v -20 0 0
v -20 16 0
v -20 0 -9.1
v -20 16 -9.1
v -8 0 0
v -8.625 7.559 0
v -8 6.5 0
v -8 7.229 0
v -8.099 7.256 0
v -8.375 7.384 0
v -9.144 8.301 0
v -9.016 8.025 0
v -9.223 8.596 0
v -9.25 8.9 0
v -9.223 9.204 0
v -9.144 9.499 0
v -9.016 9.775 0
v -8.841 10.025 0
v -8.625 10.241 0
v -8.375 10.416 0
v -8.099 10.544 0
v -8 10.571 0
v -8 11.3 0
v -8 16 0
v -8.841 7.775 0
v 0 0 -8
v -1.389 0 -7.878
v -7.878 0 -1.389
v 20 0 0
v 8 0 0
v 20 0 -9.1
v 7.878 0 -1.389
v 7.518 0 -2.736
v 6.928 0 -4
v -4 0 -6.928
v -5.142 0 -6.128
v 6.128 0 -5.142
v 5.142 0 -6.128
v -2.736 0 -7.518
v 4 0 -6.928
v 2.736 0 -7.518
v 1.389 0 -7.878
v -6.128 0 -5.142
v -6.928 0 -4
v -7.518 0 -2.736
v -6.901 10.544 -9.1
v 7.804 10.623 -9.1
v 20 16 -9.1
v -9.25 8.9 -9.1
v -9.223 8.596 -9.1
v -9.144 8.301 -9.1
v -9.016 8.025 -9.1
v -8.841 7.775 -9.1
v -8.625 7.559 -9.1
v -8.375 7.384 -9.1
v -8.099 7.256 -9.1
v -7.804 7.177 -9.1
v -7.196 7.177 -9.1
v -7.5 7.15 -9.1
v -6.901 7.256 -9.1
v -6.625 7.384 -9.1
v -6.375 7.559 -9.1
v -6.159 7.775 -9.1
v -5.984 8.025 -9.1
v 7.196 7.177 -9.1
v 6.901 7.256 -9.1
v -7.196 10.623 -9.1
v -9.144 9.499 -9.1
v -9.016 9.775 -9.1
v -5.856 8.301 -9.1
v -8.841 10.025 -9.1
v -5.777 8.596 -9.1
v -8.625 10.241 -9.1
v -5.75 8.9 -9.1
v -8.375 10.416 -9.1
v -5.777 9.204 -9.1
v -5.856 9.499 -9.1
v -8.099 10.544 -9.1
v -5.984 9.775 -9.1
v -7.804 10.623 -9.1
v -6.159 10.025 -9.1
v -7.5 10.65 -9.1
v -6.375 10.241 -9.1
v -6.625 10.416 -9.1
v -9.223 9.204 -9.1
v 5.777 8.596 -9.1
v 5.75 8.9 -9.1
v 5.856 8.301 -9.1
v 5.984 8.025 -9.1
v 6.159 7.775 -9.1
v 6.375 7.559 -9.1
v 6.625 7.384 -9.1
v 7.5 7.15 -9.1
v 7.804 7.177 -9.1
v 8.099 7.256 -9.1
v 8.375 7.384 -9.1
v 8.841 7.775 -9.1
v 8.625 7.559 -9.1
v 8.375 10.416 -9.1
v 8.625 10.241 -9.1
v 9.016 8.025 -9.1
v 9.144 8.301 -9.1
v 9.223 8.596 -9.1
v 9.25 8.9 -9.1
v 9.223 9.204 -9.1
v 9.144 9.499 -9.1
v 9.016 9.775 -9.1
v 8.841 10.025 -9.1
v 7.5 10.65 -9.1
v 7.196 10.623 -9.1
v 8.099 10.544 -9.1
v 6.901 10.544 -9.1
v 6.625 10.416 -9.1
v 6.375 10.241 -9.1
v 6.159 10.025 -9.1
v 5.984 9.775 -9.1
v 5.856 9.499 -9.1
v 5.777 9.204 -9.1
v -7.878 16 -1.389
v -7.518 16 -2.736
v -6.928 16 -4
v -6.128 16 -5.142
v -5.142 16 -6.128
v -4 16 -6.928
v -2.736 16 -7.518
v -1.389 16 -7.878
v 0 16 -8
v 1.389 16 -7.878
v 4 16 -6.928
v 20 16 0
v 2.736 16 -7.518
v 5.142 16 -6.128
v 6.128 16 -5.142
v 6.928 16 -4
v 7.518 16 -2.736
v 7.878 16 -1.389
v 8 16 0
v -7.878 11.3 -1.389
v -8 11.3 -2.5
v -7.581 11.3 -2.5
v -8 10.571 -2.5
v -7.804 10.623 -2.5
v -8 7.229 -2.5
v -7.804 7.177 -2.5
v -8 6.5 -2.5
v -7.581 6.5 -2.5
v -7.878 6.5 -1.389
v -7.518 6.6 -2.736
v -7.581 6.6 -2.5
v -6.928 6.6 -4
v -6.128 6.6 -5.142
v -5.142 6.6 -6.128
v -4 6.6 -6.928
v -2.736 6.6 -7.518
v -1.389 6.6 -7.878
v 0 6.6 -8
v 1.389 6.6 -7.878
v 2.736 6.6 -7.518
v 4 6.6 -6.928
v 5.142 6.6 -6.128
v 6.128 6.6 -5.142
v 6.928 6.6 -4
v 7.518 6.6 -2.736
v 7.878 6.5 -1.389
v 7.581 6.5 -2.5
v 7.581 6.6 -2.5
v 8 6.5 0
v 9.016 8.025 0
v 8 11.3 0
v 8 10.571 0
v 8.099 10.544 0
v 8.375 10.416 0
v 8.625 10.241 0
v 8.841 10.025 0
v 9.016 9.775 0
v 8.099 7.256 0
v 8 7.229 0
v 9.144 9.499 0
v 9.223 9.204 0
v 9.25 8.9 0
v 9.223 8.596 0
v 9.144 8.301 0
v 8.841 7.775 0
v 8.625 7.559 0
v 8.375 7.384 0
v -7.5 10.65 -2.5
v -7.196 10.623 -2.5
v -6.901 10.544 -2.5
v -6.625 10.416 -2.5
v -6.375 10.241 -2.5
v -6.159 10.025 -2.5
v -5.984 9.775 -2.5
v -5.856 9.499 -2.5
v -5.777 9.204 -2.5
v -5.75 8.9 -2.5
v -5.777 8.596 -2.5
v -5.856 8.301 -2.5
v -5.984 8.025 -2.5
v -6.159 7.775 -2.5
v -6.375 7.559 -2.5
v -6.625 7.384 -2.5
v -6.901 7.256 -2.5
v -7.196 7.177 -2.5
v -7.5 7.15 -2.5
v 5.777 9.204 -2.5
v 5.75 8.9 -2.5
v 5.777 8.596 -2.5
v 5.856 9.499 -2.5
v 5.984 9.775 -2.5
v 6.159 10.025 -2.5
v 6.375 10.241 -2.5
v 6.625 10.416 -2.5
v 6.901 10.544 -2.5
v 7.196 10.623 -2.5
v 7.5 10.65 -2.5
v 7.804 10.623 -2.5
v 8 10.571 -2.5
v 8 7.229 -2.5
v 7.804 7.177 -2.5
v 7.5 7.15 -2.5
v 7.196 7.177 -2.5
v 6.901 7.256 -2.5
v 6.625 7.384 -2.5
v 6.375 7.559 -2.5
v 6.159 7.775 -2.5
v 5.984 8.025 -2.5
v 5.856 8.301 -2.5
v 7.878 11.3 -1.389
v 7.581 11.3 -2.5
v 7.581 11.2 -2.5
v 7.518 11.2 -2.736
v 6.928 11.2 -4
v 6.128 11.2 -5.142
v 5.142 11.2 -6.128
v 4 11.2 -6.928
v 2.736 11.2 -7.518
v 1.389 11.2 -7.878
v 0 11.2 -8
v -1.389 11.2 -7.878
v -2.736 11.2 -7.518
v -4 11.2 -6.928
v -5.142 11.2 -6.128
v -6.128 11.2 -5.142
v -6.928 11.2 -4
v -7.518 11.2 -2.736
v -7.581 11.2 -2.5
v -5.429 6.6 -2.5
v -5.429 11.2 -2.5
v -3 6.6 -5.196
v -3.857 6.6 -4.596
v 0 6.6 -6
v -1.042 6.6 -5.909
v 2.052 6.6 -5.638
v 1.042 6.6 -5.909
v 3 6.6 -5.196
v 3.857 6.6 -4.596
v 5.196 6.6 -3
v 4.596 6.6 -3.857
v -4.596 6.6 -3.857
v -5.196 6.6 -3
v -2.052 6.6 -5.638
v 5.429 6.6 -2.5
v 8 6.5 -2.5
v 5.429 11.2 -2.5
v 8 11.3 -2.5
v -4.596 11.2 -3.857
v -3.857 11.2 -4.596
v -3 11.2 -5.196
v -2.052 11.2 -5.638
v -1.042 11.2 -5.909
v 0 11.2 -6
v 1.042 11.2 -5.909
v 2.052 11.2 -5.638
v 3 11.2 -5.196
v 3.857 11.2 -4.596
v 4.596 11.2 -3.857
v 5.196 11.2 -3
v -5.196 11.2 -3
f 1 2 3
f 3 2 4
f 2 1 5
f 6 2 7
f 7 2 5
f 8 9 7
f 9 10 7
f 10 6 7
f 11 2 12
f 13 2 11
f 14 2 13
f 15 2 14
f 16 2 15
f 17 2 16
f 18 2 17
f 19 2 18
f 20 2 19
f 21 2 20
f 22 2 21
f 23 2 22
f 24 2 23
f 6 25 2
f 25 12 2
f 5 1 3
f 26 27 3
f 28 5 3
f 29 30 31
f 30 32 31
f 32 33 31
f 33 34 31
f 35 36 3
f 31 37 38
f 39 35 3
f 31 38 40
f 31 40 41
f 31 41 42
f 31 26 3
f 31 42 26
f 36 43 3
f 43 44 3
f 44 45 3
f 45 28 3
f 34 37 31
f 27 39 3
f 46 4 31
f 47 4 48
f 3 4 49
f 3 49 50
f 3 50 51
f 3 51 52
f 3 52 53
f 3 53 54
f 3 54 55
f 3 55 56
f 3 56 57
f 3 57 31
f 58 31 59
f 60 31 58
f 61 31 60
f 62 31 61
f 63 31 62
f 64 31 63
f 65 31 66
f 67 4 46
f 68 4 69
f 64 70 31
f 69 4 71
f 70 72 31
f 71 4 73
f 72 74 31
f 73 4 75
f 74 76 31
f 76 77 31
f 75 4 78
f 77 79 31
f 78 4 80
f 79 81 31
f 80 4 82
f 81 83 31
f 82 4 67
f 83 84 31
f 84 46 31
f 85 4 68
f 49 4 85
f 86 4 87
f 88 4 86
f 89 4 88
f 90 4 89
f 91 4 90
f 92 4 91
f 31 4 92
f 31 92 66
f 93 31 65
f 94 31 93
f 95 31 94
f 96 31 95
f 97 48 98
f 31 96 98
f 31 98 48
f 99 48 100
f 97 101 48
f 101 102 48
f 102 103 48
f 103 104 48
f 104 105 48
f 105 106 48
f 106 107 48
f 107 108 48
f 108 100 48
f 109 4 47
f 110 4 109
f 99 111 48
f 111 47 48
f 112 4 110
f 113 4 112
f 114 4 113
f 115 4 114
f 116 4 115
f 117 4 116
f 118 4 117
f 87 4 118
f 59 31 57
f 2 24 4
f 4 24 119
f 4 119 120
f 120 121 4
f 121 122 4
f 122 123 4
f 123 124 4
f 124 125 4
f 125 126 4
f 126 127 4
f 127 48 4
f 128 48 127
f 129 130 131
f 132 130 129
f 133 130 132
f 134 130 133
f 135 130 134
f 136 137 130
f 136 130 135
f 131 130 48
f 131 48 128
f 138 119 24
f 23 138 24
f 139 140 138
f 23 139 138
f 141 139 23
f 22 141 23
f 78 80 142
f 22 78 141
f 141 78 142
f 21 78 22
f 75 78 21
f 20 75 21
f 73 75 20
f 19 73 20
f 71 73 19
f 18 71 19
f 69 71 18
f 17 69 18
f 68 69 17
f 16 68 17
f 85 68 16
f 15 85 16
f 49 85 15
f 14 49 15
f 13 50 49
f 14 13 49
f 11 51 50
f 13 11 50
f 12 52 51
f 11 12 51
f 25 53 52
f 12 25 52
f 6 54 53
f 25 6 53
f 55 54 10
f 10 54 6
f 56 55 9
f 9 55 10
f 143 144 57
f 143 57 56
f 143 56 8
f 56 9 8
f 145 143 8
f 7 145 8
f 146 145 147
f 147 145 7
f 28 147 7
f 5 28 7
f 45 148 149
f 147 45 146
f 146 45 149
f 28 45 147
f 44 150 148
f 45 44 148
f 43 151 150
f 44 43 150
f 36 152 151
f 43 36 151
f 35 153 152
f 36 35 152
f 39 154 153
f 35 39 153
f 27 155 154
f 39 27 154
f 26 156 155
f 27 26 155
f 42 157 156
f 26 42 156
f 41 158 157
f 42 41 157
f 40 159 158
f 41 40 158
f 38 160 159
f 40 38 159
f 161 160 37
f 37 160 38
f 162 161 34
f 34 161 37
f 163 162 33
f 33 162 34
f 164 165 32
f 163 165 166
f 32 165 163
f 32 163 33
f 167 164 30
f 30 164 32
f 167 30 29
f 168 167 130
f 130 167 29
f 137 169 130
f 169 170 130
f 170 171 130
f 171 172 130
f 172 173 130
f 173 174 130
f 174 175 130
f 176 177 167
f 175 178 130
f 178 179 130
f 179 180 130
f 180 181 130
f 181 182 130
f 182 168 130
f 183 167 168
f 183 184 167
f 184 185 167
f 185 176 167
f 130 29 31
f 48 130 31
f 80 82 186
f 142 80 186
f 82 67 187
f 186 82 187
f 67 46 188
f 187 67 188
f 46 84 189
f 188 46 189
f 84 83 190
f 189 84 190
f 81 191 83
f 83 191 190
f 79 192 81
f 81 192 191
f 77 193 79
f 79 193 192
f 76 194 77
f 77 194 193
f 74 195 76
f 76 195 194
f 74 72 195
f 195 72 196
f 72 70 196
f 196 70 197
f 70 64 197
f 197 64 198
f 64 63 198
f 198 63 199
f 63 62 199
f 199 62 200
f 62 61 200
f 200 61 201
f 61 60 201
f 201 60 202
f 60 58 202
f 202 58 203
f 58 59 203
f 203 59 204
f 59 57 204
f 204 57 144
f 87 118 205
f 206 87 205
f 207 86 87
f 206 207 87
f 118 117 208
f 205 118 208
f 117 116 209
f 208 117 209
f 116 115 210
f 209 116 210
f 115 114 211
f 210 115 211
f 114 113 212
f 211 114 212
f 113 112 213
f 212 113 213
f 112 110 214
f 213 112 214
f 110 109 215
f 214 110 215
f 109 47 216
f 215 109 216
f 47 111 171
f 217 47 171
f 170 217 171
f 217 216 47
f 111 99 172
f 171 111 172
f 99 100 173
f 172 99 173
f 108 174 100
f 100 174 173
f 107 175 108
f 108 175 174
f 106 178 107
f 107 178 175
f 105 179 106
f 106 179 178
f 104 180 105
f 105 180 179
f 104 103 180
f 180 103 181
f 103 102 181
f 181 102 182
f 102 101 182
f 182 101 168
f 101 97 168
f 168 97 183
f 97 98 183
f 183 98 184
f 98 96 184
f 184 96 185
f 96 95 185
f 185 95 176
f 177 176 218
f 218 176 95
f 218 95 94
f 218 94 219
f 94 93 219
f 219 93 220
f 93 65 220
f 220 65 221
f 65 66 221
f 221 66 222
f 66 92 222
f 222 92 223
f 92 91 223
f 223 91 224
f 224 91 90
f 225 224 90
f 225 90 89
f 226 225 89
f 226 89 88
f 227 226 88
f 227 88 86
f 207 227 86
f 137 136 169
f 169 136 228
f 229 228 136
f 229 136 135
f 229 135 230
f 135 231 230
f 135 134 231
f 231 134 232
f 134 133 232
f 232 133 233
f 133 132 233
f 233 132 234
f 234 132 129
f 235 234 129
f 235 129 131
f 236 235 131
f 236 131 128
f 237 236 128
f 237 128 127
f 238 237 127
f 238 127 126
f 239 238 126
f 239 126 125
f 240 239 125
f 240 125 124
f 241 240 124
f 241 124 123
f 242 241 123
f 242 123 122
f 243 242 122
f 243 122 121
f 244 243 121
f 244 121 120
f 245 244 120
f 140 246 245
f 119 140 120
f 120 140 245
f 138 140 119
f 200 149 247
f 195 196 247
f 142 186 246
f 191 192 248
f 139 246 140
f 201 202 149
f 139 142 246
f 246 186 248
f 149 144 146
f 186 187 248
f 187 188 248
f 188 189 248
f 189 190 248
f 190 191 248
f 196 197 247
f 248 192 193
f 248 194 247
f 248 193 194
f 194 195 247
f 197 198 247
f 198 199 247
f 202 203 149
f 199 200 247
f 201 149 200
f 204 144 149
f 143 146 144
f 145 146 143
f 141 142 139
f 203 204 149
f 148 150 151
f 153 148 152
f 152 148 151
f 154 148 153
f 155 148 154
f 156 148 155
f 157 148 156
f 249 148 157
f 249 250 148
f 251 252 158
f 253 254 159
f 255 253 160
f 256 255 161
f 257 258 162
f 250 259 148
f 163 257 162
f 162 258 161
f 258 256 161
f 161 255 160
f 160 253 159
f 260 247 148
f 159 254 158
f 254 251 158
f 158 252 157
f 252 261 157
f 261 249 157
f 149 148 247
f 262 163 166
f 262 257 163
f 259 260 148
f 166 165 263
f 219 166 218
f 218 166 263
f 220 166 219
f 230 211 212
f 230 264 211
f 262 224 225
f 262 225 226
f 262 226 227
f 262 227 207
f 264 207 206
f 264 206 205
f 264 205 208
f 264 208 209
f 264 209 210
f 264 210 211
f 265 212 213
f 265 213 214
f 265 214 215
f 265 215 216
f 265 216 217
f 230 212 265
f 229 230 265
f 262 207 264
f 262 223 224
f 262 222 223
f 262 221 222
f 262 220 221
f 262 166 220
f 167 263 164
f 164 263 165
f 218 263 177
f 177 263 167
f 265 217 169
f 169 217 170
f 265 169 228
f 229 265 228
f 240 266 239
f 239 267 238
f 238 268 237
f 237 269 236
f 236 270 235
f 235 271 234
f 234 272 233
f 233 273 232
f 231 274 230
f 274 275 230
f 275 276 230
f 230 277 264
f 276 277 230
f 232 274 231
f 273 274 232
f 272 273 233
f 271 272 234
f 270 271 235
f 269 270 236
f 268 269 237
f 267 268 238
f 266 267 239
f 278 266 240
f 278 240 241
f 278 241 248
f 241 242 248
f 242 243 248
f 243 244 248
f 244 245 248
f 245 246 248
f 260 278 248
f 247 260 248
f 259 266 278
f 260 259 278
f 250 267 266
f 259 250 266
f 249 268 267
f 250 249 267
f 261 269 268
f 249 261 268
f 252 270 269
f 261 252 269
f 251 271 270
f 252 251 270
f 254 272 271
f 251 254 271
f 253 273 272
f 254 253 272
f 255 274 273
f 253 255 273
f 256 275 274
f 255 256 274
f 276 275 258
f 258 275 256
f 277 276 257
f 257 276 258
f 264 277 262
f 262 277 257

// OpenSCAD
$fn=36;

//J-head hotend mount for Ormerod. By John Stäck, Copyright (c) 2014.
//Licensed under Creative Commons Attribution Share-Alike (CC BY-SA)

//Dimensions of J-head nozzle holder V.5
diameter = 16; //Diameter of nozzle holder
groove_diameter=12;
groove_width=4.6;
groove_offset=4.8;


block_width=40;
block_height=16;
block_thickness=9.1;
hole_distance=15; //Distance between holes
//hole_offset=7; //Distance from top of block
hole_offset=groove_offset+groove_width/2; //7.1, just to get screw holes centered in groove

hole_diameter=3.5;

rotate([-90,0,0]) //Rotate for printing
difference()
{
	translate([-block_width/2,0,0]) cube([block_width, block_thickness, block_height]);

	//Screw holes
	for(dir=[-1,1]) translate([dir*hole_distance/2, -1, block_height-hole_offset]) rotate([-90,0,0]) cylinder(d=hole_diameter,h=block_thickness+2);

	//"inner cylinder" matching the groove
	translate([0,0,-1]) cylinder(d=groove_diameter, h=block_height+2);

	//Top and bottom parts of thick cylinder
	translate([0,0,block_height-groove_offset]) cylinder(d=diameter, h=groove_offset+1);
	translate([0,0,-1]) cylinder(d=diameter, h=block_height-groove_width-groove_offset+1);

	//cut out a bit along the screw holes, as it's so thin
	translate([-diameter/2,-1,block_height-groove_offset-groove_width-0.1]) cube([diameter, 2.5+1, groove_width+0.2]);
}
